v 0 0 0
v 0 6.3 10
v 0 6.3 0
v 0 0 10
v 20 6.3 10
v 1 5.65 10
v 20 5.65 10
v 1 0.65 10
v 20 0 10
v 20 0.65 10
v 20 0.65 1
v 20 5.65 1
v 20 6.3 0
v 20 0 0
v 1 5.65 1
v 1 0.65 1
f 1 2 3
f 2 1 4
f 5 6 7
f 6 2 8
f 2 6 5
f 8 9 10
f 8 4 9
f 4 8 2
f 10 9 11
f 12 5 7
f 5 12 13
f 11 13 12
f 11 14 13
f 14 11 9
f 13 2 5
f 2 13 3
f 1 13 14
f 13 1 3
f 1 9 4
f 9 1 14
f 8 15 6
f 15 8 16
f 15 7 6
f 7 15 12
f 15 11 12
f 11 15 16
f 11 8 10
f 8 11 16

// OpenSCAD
difference() {
    cube([20, 6.3, 10]);
    
    translate([1, 0.65, 1]) {
        cube([20, 5, 10]);
    }
}
